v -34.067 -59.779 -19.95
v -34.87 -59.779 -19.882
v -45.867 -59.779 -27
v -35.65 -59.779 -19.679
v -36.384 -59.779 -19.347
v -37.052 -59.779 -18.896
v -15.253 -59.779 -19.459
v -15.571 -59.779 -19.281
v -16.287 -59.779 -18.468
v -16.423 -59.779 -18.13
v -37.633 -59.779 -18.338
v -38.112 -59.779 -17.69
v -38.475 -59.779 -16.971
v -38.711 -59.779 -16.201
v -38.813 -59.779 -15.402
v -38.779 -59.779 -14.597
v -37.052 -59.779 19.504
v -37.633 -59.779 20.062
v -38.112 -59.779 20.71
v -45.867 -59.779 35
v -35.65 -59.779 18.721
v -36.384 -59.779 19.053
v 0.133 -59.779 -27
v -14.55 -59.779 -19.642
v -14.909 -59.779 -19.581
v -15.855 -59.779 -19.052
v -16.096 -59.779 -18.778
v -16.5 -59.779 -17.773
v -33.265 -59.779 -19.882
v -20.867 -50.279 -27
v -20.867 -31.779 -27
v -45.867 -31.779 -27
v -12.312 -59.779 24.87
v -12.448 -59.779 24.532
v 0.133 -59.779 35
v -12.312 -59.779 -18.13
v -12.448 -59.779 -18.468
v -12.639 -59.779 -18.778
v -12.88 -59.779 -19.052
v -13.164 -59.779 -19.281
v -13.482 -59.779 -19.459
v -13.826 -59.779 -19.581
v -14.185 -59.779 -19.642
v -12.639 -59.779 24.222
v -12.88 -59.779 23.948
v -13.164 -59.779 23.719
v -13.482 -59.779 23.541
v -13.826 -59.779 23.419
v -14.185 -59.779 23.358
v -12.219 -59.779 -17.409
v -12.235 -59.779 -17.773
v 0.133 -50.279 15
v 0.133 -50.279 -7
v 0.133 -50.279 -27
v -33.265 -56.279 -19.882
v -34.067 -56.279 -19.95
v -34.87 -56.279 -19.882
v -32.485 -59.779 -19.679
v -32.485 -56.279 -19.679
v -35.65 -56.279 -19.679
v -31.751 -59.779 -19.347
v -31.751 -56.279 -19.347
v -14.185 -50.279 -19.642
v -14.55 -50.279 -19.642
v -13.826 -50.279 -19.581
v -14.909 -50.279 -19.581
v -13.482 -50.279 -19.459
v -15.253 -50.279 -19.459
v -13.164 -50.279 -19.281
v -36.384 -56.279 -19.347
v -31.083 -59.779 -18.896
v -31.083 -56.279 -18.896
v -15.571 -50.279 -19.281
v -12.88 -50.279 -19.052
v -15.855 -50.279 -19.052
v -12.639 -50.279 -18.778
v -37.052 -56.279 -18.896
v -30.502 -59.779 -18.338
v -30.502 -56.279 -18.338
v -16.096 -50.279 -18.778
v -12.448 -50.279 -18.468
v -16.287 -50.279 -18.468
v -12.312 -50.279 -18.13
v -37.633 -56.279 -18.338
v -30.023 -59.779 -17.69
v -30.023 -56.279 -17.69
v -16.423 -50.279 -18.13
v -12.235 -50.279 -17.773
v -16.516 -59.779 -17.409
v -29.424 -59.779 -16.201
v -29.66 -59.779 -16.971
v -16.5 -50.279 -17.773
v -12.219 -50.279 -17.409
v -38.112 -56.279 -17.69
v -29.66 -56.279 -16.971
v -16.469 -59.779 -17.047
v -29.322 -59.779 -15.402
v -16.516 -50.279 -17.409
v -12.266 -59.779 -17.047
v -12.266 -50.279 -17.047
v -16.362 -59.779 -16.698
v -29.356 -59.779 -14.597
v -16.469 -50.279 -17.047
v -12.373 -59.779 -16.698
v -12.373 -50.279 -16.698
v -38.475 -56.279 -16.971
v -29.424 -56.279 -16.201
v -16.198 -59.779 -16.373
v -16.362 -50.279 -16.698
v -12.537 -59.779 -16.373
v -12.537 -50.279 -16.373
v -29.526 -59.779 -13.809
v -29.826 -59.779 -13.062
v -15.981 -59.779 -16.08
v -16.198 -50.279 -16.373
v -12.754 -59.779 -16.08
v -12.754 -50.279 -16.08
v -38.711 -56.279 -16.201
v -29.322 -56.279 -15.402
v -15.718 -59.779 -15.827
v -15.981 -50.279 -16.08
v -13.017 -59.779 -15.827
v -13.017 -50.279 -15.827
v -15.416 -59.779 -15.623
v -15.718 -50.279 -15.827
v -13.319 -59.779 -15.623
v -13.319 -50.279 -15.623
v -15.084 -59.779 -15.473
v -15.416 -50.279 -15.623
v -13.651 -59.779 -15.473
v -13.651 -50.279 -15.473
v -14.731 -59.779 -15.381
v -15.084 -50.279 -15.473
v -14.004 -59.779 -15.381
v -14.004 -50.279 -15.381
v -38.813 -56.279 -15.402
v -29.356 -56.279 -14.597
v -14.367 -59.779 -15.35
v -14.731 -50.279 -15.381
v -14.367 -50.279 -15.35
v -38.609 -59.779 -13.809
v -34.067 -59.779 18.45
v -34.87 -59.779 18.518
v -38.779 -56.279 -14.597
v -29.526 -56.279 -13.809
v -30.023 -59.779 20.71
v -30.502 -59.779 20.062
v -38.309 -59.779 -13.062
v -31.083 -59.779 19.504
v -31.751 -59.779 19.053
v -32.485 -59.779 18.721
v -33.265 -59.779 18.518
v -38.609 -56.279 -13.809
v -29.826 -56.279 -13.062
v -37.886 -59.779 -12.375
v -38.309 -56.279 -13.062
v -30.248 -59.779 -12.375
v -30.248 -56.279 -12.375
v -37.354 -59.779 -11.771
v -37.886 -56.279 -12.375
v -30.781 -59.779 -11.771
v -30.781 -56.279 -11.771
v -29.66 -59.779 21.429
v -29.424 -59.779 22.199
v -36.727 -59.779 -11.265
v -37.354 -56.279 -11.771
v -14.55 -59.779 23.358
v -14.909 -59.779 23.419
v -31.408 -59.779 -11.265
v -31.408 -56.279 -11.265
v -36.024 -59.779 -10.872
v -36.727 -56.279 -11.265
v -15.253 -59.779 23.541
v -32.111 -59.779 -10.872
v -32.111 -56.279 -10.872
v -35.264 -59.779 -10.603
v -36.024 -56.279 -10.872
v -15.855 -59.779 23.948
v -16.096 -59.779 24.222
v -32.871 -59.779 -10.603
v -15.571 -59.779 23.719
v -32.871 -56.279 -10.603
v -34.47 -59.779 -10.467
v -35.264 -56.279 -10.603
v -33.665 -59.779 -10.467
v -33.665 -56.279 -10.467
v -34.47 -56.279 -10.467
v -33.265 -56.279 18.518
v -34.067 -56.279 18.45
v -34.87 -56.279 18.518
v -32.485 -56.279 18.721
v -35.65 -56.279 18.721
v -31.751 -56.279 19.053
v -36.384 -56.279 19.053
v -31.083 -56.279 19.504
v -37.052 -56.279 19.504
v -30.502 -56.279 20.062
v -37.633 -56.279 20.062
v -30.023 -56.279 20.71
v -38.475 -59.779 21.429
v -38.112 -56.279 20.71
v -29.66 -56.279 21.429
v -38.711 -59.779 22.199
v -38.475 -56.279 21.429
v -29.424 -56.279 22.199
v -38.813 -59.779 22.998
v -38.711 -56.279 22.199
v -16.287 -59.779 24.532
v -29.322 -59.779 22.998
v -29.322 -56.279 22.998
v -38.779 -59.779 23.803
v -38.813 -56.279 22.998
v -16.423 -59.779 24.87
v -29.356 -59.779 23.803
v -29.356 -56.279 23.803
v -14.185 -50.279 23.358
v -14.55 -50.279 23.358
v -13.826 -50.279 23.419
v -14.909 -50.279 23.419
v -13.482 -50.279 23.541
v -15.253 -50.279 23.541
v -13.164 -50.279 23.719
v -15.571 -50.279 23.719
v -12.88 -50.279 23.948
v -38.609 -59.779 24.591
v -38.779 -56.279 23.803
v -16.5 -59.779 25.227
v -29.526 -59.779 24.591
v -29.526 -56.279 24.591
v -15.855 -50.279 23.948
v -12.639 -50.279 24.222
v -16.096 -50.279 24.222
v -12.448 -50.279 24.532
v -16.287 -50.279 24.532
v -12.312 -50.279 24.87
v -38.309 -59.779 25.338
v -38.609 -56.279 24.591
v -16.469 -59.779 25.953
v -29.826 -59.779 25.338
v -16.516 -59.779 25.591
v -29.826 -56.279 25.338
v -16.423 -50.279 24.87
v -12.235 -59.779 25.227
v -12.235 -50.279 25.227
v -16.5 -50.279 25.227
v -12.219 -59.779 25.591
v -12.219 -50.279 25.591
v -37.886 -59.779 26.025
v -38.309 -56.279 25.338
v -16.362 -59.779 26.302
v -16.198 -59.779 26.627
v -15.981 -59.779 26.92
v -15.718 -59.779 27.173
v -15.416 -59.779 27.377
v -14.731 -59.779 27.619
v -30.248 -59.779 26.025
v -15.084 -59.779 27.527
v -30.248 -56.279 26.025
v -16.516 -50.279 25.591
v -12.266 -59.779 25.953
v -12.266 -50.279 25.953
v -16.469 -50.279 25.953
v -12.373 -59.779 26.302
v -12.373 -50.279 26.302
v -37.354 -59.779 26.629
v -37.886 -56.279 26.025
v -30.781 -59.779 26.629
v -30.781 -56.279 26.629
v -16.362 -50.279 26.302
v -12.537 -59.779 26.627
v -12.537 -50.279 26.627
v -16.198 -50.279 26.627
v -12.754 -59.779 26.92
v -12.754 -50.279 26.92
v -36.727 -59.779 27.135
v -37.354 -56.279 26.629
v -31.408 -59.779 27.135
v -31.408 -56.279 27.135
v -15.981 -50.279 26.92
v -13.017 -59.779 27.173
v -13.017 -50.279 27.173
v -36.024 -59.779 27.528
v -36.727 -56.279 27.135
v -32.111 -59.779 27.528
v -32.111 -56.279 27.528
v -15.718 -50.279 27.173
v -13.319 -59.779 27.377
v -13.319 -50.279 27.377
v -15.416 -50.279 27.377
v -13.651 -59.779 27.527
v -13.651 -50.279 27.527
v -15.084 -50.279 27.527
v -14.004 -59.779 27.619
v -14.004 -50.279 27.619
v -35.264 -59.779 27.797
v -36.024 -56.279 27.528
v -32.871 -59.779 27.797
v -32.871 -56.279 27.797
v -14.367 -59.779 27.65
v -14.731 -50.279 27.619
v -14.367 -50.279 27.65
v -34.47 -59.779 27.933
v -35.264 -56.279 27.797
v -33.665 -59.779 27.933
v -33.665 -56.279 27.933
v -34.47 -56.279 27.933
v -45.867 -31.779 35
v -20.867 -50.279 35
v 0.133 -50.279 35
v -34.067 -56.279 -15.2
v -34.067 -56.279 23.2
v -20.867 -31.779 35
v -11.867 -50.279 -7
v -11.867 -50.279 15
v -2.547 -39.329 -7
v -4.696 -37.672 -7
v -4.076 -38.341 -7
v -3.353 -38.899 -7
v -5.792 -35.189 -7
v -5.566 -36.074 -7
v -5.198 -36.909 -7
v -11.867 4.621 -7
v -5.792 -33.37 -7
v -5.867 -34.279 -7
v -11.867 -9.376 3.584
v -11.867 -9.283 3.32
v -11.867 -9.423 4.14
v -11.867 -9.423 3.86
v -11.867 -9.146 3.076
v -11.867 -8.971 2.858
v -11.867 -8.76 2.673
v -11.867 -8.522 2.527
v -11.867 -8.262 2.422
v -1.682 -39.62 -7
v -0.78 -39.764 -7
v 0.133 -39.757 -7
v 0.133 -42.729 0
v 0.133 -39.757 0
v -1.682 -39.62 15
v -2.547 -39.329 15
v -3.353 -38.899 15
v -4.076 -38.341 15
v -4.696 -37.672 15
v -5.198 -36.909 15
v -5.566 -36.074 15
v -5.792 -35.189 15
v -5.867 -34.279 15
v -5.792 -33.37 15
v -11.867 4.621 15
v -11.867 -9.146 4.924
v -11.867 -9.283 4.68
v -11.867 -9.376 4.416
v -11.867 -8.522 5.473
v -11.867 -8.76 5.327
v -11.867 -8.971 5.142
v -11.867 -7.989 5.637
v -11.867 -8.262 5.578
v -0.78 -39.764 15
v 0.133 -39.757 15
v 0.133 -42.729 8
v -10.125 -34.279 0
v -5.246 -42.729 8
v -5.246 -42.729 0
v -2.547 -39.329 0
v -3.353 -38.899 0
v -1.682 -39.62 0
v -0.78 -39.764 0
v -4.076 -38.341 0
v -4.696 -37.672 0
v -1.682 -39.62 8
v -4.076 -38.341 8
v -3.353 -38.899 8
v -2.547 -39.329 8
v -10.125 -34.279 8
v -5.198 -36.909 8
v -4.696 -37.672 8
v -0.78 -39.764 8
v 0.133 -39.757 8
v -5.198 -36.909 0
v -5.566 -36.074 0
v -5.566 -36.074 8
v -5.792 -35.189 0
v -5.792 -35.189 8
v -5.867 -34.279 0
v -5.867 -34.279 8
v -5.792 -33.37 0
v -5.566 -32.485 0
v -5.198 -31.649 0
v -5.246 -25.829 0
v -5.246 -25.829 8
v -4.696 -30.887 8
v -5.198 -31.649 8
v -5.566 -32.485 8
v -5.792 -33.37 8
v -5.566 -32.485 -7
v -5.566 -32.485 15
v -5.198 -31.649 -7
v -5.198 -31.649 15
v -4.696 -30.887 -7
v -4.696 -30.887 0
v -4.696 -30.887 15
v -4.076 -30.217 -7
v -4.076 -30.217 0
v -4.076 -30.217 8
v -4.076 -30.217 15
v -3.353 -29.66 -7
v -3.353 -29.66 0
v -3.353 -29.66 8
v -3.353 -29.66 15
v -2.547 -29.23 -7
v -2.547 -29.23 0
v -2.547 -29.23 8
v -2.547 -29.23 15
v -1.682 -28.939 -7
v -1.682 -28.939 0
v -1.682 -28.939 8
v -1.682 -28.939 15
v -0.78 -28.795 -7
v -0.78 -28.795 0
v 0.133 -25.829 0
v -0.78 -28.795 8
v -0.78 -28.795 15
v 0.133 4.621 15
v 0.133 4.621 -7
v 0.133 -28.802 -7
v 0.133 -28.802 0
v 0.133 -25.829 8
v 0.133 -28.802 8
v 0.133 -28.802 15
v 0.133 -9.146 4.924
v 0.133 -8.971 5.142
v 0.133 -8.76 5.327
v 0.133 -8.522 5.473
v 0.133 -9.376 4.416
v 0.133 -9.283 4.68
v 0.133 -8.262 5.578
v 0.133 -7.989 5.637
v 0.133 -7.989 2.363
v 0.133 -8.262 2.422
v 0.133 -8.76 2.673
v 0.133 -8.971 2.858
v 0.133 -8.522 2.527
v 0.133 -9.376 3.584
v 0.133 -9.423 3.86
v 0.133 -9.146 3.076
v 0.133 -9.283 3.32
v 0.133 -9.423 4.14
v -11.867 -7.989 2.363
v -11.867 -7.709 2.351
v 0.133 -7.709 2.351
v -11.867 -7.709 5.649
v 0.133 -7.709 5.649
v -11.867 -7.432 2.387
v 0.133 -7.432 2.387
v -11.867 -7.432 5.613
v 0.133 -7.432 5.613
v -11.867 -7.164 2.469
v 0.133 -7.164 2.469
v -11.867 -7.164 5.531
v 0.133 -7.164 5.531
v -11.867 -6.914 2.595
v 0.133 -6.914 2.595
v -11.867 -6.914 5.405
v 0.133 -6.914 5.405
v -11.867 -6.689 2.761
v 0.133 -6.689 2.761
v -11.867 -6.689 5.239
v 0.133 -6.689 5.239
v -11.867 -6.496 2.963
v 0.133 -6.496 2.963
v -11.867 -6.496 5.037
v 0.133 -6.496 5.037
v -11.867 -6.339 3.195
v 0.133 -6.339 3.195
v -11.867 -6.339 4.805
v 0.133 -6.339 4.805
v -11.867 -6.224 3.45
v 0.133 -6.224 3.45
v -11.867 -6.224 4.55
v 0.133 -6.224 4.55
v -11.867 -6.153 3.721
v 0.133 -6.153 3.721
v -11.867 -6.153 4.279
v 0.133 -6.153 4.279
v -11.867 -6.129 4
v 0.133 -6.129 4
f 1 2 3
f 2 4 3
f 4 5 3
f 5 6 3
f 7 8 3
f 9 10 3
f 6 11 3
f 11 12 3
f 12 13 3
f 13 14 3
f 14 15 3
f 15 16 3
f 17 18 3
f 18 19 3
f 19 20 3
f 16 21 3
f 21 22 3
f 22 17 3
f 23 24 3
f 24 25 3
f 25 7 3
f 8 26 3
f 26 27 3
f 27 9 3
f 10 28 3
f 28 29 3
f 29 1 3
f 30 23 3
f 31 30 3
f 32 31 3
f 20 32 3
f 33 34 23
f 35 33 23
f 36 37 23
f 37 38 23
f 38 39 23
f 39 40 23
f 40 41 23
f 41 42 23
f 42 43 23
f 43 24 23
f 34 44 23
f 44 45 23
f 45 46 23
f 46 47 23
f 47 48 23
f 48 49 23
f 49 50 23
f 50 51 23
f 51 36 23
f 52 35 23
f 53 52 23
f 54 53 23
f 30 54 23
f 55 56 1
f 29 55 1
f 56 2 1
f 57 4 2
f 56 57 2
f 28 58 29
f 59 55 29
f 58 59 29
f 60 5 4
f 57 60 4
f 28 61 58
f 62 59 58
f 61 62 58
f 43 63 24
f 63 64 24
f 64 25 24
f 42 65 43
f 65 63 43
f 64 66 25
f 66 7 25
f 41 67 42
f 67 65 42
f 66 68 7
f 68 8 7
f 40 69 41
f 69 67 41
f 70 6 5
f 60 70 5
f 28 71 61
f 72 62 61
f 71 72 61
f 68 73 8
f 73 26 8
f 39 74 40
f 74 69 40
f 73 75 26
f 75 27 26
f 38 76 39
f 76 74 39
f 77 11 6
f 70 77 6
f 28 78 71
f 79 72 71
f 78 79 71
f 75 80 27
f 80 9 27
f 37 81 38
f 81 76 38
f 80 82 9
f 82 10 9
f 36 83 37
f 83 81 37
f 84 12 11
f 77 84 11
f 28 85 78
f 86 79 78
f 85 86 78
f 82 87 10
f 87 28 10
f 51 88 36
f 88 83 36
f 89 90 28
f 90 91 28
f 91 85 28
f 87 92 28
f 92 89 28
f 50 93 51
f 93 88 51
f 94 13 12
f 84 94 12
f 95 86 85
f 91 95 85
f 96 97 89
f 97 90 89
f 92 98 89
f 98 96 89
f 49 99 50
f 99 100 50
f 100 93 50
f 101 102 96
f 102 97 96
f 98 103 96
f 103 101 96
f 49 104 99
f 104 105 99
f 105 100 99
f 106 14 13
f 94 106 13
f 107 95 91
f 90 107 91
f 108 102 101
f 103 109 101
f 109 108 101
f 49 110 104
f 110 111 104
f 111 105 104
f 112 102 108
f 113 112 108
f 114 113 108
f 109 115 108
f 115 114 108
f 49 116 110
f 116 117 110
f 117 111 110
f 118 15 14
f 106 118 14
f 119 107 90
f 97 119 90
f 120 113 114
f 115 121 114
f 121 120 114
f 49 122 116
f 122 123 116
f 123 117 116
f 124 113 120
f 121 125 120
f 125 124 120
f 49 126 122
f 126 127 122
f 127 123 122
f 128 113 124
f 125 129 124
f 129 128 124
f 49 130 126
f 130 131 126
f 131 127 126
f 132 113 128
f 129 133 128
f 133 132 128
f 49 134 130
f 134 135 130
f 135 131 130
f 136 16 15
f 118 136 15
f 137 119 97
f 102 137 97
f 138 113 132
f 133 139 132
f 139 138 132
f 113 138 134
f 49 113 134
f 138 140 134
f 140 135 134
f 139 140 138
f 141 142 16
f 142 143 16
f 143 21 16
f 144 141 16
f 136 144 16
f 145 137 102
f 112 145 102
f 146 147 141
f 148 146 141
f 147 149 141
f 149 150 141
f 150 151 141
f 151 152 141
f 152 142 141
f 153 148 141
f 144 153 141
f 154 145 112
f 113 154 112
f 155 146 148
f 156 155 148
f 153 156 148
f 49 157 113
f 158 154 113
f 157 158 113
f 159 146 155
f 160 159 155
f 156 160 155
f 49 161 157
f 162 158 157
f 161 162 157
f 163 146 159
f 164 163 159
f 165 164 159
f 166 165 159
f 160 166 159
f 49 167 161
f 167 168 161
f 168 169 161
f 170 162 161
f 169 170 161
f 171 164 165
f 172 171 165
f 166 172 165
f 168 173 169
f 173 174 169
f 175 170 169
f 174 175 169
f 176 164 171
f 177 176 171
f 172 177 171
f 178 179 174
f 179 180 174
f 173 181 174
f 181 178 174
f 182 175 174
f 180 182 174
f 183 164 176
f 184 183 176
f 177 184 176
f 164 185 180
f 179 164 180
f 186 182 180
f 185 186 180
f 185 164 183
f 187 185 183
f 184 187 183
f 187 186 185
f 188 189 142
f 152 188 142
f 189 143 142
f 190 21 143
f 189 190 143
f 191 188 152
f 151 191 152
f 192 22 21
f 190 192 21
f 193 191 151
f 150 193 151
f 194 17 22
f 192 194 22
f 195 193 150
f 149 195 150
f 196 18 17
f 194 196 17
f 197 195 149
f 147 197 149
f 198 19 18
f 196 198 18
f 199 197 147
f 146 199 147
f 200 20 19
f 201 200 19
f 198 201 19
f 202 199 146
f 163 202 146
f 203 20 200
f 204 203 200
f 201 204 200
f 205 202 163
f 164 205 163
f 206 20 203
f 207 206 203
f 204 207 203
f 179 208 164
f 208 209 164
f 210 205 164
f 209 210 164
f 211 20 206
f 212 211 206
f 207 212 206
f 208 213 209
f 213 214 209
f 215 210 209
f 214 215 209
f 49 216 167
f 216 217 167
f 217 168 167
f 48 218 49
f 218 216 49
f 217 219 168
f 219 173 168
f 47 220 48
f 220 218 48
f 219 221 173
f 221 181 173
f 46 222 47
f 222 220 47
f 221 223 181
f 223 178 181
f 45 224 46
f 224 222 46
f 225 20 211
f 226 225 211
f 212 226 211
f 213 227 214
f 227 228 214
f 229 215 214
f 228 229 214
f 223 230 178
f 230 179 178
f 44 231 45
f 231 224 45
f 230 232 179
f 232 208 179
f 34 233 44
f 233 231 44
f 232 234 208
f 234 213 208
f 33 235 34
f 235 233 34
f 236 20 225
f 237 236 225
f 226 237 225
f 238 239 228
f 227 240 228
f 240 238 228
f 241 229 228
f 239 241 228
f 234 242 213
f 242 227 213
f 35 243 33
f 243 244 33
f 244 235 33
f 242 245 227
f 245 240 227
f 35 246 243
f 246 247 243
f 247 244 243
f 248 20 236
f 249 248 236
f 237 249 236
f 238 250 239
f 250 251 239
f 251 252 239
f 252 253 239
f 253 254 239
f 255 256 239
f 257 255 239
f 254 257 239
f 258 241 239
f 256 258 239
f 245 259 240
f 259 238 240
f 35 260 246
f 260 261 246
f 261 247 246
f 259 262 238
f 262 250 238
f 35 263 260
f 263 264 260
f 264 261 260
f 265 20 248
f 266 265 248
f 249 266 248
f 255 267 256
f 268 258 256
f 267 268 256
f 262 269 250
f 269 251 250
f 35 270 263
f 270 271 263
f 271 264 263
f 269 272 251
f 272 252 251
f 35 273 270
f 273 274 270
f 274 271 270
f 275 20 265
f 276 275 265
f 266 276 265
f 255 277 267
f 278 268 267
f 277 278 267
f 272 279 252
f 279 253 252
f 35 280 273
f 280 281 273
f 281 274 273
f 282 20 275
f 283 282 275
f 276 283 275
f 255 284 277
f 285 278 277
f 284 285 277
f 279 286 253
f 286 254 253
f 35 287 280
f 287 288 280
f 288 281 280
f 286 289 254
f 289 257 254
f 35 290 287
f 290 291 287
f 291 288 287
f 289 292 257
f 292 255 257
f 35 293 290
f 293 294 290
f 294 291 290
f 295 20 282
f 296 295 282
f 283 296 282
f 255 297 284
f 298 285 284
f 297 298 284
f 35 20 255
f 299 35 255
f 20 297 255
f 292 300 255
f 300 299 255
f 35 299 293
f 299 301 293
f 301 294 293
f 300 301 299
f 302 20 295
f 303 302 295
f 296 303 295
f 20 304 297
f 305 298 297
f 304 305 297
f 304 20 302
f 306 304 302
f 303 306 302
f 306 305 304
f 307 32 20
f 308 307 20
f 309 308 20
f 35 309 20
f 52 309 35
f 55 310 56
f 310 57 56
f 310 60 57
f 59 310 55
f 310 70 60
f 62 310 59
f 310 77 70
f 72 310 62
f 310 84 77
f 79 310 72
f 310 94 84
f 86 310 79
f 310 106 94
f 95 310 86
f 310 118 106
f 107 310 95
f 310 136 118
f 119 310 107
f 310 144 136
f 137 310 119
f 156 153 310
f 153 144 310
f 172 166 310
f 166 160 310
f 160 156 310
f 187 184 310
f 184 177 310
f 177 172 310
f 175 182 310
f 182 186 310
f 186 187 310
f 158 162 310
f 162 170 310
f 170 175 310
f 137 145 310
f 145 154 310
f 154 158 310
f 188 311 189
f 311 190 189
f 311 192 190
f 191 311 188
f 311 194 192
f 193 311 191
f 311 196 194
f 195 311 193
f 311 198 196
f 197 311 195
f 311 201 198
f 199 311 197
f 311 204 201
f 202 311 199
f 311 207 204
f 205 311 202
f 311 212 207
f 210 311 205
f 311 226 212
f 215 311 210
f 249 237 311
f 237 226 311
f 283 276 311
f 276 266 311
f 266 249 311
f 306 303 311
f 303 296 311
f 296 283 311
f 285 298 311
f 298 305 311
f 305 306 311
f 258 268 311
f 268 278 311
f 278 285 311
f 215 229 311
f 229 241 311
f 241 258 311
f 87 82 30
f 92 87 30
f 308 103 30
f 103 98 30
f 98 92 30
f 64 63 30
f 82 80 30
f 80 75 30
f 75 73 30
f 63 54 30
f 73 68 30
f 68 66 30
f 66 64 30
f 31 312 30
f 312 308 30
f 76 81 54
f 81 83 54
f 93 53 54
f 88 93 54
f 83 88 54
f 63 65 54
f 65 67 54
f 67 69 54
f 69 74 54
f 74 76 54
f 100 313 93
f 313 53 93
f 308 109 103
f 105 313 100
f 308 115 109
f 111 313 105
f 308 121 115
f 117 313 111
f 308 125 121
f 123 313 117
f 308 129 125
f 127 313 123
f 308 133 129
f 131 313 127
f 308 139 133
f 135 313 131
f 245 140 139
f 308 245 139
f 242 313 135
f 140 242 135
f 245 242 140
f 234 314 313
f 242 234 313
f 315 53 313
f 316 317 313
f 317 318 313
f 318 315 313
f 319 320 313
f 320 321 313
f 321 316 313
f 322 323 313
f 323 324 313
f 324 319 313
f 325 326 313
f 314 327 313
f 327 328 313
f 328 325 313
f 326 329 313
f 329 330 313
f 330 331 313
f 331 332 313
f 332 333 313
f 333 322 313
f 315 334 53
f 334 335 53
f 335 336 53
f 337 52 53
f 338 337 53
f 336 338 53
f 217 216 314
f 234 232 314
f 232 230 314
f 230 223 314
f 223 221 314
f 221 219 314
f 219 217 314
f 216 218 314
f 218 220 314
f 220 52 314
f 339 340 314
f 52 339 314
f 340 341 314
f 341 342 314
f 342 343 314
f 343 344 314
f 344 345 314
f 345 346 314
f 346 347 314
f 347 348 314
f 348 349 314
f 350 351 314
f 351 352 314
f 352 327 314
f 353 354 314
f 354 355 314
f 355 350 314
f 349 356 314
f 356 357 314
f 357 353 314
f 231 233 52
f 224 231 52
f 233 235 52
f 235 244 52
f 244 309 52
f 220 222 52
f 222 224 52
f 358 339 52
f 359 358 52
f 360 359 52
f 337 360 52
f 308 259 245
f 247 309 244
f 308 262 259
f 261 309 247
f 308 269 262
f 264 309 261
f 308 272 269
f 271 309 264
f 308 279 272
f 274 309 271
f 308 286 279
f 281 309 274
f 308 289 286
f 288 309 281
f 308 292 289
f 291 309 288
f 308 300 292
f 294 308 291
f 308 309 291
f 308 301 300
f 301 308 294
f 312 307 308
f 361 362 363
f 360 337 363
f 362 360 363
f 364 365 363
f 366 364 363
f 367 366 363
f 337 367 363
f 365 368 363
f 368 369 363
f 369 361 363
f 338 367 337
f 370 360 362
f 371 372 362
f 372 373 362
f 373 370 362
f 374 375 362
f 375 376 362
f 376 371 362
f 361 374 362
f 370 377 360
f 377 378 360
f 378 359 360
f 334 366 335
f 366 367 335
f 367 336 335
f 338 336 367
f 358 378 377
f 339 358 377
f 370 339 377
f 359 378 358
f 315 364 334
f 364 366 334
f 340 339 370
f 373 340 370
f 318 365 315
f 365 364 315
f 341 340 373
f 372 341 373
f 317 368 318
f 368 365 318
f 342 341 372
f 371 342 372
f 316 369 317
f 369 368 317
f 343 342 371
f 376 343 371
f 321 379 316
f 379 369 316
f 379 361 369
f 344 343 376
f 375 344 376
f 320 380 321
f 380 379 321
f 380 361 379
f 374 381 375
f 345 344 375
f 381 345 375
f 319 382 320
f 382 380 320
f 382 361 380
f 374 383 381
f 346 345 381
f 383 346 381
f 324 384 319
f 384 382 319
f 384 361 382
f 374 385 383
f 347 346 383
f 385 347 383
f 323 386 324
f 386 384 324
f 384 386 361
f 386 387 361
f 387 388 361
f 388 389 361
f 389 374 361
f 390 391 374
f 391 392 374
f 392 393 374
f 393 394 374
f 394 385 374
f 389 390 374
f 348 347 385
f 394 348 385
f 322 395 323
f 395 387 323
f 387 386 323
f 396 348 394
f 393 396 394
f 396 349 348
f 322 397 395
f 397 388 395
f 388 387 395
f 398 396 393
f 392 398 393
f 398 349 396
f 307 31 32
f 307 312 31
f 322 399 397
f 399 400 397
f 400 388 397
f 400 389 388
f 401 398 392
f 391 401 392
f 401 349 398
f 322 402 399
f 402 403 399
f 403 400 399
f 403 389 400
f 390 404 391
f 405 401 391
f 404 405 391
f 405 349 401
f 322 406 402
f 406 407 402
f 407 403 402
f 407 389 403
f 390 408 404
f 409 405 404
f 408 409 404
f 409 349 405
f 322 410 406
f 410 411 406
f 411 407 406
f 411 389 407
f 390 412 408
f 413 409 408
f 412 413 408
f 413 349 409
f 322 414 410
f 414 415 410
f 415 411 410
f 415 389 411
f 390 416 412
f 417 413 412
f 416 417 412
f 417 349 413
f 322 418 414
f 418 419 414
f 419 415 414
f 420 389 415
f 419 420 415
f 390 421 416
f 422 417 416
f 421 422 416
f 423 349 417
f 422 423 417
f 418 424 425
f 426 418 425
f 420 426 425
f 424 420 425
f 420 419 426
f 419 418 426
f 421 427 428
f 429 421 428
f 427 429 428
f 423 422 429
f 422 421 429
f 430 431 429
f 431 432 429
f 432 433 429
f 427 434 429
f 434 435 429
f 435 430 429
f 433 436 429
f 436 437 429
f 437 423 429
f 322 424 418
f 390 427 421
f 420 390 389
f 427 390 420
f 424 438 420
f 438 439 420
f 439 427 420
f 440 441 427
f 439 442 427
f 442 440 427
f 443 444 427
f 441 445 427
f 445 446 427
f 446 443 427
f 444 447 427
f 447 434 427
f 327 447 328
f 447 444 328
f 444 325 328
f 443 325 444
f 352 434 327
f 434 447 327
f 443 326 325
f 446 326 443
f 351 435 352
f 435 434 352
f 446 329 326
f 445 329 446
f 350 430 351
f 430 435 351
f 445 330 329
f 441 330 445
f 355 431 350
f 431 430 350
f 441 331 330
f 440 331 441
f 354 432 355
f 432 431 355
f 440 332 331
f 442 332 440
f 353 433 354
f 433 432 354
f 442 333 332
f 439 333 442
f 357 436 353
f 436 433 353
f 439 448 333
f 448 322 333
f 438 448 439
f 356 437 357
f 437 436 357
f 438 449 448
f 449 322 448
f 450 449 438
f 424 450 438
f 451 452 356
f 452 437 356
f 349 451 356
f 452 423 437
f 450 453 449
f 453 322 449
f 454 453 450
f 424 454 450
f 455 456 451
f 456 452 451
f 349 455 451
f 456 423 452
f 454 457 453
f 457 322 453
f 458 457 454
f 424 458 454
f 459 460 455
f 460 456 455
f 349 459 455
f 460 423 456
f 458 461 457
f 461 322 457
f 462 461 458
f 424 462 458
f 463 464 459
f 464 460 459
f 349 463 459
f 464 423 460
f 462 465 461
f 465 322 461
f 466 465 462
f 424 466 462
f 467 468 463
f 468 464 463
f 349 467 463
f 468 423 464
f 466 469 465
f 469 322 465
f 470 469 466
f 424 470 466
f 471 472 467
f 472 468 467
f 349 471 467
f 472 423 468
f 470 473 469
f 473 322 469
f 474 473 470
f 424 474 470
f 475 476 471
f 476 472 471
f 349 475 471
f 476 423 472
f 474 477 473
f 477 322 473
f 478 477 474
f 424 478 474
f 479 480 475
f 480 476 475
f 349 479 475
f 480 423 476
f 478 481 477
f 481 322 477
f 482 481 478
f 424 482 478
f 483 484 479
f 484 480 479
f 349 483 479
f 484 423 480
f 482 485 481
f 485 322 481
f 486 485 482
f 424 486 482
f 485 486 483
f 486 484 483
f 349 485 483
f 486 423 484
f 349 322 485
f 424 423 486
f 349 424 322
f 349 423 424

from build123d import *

# Parameters (mm, degrees)
SKETCH_1_W          = 23
SKETCH_1_H          = 64.4
EXTRUDE_1_DEPTH     = 8
SKETCH_3_W          = 23
SKETCH_3_H          = 64.4
SKETCH_3_R          = 5.5
EXTRUDE_2_DEPTH     = 7
SKETCH_4_W          = 23
SKETCH_4_H          = 64.4
SKETCH_4_R          = 5.5
EXTRUDE_3_DEPTH     = 7
SKETCH_5_R          = 1.65
CUT_EXTRUDE_1_DEPTH = 24
SKETCH_6_W          = 22
SKETCH_6_H          = 64.4
CUT_EXTRUDE_2_DEPTH = 11
EXTRUDE_4_DEPTH     = 9.5
SKETCH_8_R          = 2.15
CUT_EXTRUDE_3_DEPTH = 10.5
SKETCH_9_R          = 4.75
CUT_EXTRUDE_4_DEPTH = 3.5
SKETCH_10_W         = 25
SKETCH_10_H         = 62
EXTRUDE_5_DEPTH     = 18.5


with BuildPart() as part:
    # 草圖1 → 填料-伸長1 (new body)
    with BuildSketch(Plane.XY):
        with Locations((-0.36746988, -27.579314659)):
            Rectangle(SKETCH_1_W, SKETCH_1_H)
        Polygon((9.38974967, -34.279314659), (4.511139895, -25.829314659), (-5.246079654, -25.829314659), (-10.124689429, -34.279314659), (-5.246079654, -42.729314659), (4.511139895, -42.729314659), align=None, mode=Mode.SUBTRACT)
    extrude(amount=EXTRUDE_1_DEPTH)

    # 草圖3 → 填料-伸長2 (add)
    with BuildSketch(Plane.XY.offset(8)):
        with Locations((-0.36746988, -27.579314659)):
            Rectangle(SKETCH_3_W, SKETCH_3_H)
        with Locations((-0.36746988, -34.279314659)):
            Circle(SKETCH_3_R, mode=Mode.SUBTRACT)
    extrude(amount=EXTRUDE_2_DEPTH)

    # 草圖4 → 填料-伸長3 (add)
    with BuildSketch(Plane(origin=(0, 0, 0), x_dir=(-1, 0, 0), z_dir=(0, 0, -1))):
        with Locations((0.36746988, -27.579314659)):
            Rectangle(SKETCH_4_W, SKETCH_4_H)
        with Locations((0.36746988, -34.279314659)):
            Circle(SKETCH_4_R, mode=Mode.SUBTRACT)
    extrude(amount=EXTRUDE_3_DEPTH)

    # 草圖5 → 除料-伸長1 (cut, through all)
    with BuildSketch(Plane(origin=(11.13253012, 0, 0), x_dir=(0, 0, -1), z_dir=(1, 0, 0))):
        with Locations((-4, -7.779314659)):
            Circle(SKETCH_5_R)
    extrude(amount=-CUT_EXTRUDE_1_DEPTH, mode=Mode.SUBTRACT)

    # 草圖6 → 除料-伸長2 (cut)
    with BuildSketch(Plane(origin=(11.13253012, 0, 0), x_dir=(0, 0, -1), z_dir=(1, 0, 0))):
        with Locations((-4, -27.579314659)):
            Rectangle(SKETCH_6_W, SKETCH_6_H)
    extrude(amount=-CUT_EXTRUDE_2_DEPTH, mode=Mode.SUBTRACT)

    # 草圖7 → 填料-伸長4 (add)
    with BuildSketch(Plane.XZ.offset(59.779314659)):
        Polygon((0.13253012, 15), (0.13253012, 35), (-45.86746988, 35), (-45.86746988, -27), (0.13253012, -27), (0.13253012, -7), align=None)
    extrude(amount=-EXTRUDE_4_DEPTH)

    # 草圖8 → 除料-伸長3 (cut, through all)
    with BuildSketch(Plane(origin=(0, -50.279314659, 0), x_dir=(1, 0, 0), z_dir=(0, 1, 0))):
        with Locations((-14.36746988, 17.5)):
            Circle(SKETCH_8_R)
        with Locations((-14.36746988, -25.5)):
            Circle(SKETCH_8_R)
    extrude(amount=-CUT_EXTRUDE_3_DEPTH, mode=Mode.SUBTRACT)

    # 草圖9 → 除料-伸長4 (cut)
    with BuildSketch(Plane.XZ.offset(59.779314659)):
        with Locations((-34.06746988, 23.2)):
            Circle(SKETCH_9_R)
        with Locations((-34.06746988, -15.2)):
            Circle(SKETCH_9_R)
    extrude(amount=-CUT_EXTRUDE_4_DEPTH, mode=Mode.SUBTRACT)

    # 草圖10 → 填料-伸長5 (add)
    with BuildSketch(Plane(origin=(0, -50.279314659, 0), x_dir=(1, 0, 0), z_dir=(0, 1, 0))):
        with Locations((-33.36746988, -4)):
            Rectangle(SKETCH_10_W, SKETCH_10_H)
    extrude(amount=EXTRUDE_5_DEPTH)


solid = part.part
